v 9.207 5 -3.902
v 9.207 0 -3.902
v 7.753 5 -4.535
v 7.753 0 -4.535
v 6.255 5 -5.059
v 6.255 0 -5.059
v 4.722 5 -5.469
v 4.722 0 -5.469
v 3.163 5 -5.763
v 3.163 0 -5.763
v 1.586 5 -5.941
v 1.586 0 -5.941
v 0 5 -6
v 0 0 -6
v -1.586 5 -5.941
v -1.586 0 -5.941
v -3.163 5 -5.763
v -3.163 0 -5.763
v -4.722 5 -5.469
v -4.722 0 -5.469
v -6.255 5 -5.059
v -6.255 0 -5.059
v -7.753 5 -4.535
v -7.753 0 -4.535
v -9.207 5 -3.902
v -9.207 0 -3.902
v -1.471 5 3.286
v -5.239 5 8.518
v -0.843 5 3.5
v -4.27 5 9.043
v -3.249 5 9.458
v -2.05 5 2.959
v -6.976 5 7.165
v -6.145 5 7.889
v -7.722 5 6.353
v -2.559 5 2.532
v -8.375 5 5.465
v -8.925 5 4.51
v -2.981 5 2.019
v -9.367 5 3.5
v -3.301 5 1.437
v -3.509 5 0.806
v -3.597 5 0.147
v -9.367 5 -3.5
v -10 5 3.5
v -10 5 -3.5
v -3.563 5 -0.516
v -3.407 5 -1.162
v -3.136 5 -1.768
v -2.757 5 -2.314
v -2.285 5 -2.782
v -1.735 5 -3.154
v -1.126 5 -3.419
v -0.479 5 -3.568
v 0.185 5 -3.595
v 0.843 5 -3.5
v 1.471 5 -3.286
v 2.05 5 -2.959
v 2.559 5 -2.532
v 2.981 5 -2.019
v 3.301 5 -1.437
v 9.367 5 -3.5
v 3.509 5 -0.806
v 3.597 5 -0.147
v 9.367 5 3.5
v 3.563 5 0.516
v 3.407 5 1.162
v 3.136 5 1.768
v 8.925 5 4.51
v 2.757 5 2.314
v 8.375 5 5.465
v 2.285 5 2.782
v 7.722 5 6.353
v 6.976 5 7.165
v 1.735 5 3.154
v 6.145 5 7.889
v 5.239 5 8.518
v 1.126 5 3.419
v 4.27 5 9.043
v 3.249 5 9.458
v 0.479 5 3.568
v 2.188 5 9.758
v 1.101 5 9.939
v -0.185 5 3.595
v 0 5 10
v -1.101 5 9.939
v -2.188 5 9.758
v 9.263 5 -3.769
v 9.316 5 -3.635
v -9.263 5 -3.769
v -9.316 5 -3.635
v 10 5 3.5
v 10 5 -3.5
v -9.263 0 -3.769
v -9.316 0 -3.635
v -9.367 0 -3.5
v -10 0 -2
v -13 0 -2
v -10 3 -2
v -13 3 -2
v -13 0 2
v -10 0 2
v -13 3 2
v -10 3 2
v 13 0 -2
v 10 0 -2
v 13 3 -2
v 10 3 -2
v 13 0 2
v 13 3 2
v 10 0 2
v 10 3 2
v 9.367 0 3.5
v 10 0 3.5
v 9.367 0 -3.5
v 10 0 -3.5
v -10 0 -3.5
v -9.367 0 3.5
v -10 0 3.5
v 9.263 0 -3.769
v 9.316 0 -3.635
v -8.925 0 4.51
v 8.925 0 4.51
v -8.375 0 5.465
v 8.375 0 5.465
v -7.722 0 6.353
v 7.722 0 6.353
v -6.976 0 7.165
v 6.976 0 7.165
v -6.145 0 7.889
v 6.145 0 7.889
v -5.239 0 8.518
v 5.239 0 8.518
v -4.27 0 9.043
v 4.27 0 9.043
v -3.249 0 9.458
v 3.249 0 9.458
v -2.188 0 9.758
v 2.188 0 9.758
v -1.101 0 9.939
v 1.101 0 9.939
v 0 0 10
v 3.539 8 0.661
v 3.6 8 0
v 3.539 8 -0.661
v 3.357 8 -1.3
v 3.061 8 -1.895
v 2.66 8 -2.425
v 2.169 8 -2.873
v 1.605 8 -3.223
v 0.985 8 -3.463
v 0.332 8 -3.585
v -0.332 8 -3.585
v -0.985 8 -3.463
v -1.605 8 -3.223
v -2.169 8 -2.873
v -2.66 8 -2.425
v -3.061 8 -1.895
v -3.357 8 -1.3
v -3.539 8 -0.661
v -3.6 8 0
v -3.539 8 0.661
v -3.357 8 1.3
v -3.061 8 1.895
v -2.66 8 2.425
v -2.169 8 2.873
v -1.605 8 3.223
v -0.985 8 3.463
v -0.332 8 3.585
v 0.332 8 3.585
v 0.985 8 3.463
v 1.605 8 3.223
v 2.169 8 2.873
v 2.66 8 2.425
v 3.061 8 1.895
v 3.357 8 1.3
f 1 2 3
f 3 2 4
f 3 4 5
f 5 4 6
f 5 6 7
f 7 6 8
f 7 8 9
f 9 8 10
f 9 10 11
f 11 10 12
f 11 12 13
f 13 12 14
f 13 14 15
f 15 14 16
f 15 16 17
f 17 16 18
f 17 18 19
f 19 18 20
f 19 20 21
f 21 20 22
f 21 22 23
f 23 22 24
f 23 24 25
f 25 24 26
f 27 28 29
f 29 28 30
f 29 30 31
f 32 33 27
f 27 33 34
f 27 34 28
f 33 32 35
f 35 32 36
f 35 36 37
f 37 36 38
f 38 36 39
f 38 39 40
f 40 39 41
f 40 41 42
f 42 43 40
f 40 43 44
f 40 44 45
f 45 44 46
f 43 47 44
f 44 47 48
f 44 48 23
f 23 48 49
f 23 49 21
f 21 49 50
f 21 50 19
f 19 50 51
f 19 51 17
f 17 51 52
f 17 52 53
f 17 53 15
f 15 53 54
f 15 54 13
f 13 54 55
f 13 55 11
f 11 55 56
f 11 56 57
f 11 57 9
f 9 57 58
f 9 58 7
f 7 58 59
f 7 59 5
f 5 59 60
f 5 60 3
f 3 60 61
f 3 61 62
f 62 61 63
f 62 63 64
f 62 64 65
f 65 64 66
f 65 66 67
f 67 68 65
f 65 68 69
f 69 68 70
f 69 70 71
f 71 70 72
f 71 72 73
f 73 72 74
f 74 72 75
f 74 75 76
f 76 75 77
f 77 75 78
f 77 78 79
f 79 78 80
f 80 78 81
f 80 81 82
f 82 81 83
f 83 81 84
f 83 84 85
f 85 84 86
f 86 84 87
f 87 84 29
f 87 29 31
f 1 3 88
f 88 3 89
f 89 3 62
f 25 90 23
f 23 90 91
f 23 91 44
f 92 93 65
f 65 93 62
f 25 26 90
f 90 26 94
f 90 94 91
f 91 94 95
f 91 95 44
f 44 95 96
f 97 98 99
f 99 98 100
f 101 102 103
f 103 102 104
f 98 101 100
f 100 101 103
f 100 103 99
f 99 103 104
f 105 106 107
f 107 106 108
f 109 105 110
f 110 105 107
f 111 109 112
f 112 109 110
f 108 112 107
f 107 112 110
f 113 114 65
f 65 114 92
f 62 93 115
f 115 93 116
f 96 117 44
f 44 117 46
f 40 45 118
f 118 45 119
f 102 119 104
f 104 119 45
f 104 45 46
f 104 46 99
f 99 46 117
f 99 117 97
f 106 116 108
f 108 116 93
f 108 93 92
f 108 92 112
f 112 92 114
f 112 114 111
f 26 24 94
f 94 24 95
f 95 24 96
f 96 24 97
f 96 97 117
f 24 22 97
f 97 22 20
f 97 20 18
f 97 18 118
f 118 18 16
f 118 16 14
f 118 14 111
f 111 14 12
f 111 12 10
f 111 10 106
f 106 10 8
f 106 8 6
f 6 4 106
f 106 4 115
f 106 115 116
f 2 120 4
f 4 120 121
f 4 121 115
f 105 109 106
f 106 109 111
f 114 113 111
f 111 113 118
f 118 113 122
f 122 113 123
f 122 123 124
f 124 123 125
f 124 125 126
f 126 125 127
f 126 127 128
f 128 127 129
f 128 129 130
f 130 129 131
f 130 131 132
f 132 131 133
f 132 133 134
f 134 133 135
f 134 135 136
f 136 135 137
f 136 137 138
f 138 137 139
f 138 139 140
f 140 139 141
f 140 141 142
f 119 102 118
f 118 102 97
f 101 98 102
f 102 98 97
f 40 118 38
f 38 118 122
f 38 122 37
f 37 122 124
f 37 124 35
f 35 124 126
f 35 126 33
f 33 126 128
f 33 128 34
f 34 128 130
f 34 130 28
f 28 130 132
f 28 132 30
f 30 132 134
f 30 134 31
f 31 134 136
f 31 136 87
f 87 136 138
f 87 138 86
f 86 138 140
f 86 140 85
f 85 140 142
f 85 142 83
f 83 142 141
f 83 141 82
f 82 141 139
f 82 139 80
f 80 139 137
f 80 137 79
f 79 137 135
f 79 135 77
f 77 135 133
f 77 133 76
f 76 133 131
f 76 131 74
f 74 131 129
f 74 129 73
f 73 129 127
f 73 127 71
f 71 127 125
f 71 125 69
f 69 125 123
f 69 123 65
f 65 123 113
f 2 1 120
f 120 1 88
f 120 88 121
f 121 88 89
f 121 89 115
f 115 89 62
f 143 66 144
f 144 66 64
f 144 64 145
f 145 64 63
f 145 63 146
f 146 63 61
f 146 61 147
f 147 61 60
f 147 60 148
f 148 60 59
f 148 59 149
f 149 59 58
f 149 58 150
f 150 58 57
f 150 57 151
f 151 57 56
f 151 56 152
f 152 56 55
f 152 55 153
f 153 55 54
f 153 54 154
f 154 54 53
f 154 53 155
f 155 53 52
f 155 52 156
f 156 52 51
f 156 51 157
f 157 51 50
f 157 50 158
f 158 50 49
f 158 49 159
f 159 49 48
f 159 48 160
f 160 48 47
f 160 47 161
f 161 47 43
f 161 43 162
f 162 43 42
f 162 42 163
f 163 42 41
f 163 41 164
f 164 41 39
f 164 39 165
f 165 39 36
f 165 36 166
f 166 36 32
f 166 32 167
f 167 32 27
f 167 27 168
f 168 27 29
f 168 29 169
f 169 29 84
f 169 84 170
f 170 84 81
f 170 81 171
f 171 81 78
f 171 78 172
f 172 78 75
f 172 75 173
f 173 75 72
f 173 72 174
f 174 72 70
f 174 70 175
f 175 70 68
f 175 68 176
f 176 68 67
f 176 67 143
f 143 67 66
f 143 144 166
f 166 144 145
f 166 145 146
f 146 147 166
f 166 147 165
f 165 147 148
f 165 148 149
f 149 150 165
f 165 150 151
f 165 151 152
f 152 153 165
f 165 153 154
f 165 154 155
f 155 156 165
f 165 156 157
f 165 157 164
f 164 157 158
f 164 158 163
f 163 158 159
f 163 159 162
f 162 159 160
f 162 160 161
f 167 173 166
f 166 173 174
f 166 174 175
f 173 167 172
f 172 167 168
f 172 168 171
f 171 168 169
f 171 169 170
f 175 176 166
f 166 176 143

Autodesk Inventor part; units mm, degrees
ref_plane "YZ Plane" through (0, 0, 0) normal (1, 0, 0) x (0, 1, 0)
ref_plane "XZ Plane" through (0, 0, 0) normal (0, 1, 0) x (-1, 0, 0)
ref_plane "XY Plane" through (0, 0, 0) normal (0, 0, 1) x (1, 0, 0)
sketch "Sketch1" plane through (0, 0, 0) normal (0, 1, 0) x (-1, 0, 0)
  circle A0 centre (0, 0) radius 10
  dimension "d0" = 20
extrude "Extrusion1" add sketch "Sketch1" along normal blind 5
sketch "Sketch2" plane through (0, 5, 0) normal (0, 1, 0) x (1, 0, 0)
  line L0 (-14, 0) -> (14, 0) projected
  line L1 (0, 14) -> (0, -14) projected
  circle A0 centre (0, 0) radius 3.6
  dimension "d3" = 7.2
extrude "Extrusion2" add sketch "Sketch2" along normal blind 3
sketch "Sketch3" plane through (0, 0, 0) normal (0, -1, 0) x (1, 0, 0)
  line L0 (10, -3.5) -> (-10, -3.5)
  line L1 (-10, -3.5) -> (-10, 3.5)
  line L2 (-10, 3.5) -> (10, 3.5)
  line L3 (10, 3.5) -> (10, -3.5)
  circle A0 centre (0, 0) radius 10 projected
  circle A1 centre (0, 0) radius 10 projected
  line L4 (-14, 0) -> (14, 0) projected
  line L5 (0, -14) -> (0, 14) projected
  line L6 (10, -2) -> (13, -2)
  line L7 (13, -2) -> (13, 2)
  line L8 (13, 2) -> (10, 2)
  line L9 (-10, -2) -> (-13, -2)
  line L10 (-13, -2) -> (-13, 2)
  line L11 (-13, 2) -> (-10, 2)
  dimension "d6" = 7
  dimension "d7" = 4
  dimension "d8" = 3
  dimension "d9" = 4
  dimension "d10" = 3
extrude "Extrusion3" add sketch "Sketch3" against normal up to surface (5 mm away) contours L0 A0 L3 | L0 L5 L4 A0 | L0 A0 L4 L5 | A0 L2 L3 | L4 L5 L2 A0 | L0 L1 A0 | L4 A0 L2 L5 | L1 L2 A0
extrude "Extrusion4" add sketch "Sketch3" against normal blind 3 contours L3 L4 L7 L6 | L3 L8 L7 L4 | L4 L10 L11 L1 | L1 L9 L10 L4
sketch "Sketch4" plane through (0, 0, 0) normal (0, -1, 0) x (1, 0, 0)
  arc A0 (9.3675, 3.5) -> (-9.3675, 3.5) centre (0, 0) ccw projected
  line L0 (-9.3675, 3.5) -> (-10, 3.5) projected
  line L1 (-10, 3.5) -> (-10, 2) projected
  line L2 (-10, 2) -> (-13, 2) projected
  line L3 (-13, 2) -> (-13, -2) projected
  line L4 (-13, -2) -> (-10, -2) projected
  line L5 (-10, -2) -> (-10, -3.5) projected
  line L6 (-10, -3.5) -> (-9.3675, -3.5) projected
  arc A1 (-9.3675, -3.5) -> (9.3675, -3.5) centre (0, 0) ccw projected
  line L7 (9.3675, -3.5) -> (10, -3.5) projected
  line L8 (10, -3.5) -> (10, -2) projected
  line L9 (10, -2) -> (13, -2) projected
  line L10 (13, -2) -> (13, 2) projected
  line L11 (13, 2) -> (10, 2) projected
  line L12 (10, 2) -> (10, 3.5) projected
  line L13 (10, 3.5) -> (9.3675, 3.5) projected
  line L14 (0, -31.9933) -> (0, 47.9155) projected
  line L15 (-29.75, 0) -> (29.75, 0) projected
  arc A2 (9.3675, 3.5) -> (-9.3675, 3.5) centre (0, 0) ccw projected
  circle A3 centre (0, 15.25) radius 21.25
  line L16 (15.0443, -6) -> (-18.096, -6) construction
  line L17 (10.2288, -3.7354) -> (10.2288, -20.5777)
  line L18 (10.2288, -20.5777) -> (-9.5456, -20.5777)
  line L19 (-9.5456, -20.5777) -> (-9.5456, -3.7354)
  line L20 (-9.5456, -3.7354) -> (-9.2762, -3.7354)
  line L21 (9.5456, -3.7354) -> (10.2288, -3.7354)
  dimension "d16" = 6
extrude "Extrusion5" cut sketch "Sketch4" against normal through all contours A3 A1 L14 | L14 A1 A3 | L14 L18 L19 A3 A1 | A1 A3 L21 L17 L18 L14
properties part number "turntable"
